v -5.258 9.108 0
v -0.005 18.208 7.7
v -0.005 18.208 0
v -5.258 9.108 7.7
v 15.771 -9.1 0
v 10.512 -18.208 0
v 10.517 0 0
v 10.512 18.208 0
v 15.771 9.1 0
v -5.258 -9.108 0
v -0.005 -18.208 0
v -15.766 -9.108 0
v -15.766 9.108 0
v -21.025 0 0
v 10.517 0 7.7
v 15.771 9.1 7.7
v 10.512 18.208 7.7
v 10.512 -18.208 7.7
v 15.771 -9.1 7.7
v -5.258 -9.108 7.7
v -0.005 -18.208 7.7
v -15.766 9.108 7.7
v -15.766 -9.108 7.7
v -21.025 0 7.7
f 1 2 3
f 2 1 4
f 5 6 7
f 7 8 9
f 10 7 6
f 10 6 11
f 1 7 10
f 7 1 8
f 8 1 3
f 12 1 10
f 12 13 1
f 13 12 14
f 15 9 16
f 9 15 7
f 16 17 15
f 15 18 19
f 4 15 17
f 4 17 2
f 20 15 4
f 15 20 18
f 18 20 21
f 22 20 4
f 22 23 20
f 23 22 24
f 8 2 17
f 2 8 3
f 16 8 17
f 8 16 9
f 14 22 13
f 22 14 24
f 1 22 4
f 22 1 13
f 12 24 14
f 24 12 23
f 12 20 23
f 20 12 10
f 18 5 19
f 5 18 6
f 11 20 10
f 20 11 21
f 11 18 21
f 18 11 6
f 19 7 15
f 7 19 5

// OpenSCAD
// file: dimensions.scad
measureX = 9.10; // 92/2/2/sqrt(19)*sqrt(3)
measureY = 9.10; 
measureZ = 7.7; // 54/7 is about 7.7

halfSide = 1*tan(30);
h1 = 1;
dd = 0.001;
// main file
include <dimensions.scad>

hh = [1,1,1];

scale([measureX,measureY,measureZ]) union() {
    translate([halfSide,1,0])
    linear_extrude(height = hh[0]*h1, center = false)
    circle(2*halfSide + dd,$fn=6);
    
    translate([-2*halfSide,0,0])
    linear_extrude(height = hh[1]*h1, center = false)
    circle(2*halfSide + dd,$fn=6);
    
    translate([halfSide,-1,0])
    linear_extrude(height = hh[2]*h1, center = false)
    circle(2*halfSide + dd,$fn=6);
}
